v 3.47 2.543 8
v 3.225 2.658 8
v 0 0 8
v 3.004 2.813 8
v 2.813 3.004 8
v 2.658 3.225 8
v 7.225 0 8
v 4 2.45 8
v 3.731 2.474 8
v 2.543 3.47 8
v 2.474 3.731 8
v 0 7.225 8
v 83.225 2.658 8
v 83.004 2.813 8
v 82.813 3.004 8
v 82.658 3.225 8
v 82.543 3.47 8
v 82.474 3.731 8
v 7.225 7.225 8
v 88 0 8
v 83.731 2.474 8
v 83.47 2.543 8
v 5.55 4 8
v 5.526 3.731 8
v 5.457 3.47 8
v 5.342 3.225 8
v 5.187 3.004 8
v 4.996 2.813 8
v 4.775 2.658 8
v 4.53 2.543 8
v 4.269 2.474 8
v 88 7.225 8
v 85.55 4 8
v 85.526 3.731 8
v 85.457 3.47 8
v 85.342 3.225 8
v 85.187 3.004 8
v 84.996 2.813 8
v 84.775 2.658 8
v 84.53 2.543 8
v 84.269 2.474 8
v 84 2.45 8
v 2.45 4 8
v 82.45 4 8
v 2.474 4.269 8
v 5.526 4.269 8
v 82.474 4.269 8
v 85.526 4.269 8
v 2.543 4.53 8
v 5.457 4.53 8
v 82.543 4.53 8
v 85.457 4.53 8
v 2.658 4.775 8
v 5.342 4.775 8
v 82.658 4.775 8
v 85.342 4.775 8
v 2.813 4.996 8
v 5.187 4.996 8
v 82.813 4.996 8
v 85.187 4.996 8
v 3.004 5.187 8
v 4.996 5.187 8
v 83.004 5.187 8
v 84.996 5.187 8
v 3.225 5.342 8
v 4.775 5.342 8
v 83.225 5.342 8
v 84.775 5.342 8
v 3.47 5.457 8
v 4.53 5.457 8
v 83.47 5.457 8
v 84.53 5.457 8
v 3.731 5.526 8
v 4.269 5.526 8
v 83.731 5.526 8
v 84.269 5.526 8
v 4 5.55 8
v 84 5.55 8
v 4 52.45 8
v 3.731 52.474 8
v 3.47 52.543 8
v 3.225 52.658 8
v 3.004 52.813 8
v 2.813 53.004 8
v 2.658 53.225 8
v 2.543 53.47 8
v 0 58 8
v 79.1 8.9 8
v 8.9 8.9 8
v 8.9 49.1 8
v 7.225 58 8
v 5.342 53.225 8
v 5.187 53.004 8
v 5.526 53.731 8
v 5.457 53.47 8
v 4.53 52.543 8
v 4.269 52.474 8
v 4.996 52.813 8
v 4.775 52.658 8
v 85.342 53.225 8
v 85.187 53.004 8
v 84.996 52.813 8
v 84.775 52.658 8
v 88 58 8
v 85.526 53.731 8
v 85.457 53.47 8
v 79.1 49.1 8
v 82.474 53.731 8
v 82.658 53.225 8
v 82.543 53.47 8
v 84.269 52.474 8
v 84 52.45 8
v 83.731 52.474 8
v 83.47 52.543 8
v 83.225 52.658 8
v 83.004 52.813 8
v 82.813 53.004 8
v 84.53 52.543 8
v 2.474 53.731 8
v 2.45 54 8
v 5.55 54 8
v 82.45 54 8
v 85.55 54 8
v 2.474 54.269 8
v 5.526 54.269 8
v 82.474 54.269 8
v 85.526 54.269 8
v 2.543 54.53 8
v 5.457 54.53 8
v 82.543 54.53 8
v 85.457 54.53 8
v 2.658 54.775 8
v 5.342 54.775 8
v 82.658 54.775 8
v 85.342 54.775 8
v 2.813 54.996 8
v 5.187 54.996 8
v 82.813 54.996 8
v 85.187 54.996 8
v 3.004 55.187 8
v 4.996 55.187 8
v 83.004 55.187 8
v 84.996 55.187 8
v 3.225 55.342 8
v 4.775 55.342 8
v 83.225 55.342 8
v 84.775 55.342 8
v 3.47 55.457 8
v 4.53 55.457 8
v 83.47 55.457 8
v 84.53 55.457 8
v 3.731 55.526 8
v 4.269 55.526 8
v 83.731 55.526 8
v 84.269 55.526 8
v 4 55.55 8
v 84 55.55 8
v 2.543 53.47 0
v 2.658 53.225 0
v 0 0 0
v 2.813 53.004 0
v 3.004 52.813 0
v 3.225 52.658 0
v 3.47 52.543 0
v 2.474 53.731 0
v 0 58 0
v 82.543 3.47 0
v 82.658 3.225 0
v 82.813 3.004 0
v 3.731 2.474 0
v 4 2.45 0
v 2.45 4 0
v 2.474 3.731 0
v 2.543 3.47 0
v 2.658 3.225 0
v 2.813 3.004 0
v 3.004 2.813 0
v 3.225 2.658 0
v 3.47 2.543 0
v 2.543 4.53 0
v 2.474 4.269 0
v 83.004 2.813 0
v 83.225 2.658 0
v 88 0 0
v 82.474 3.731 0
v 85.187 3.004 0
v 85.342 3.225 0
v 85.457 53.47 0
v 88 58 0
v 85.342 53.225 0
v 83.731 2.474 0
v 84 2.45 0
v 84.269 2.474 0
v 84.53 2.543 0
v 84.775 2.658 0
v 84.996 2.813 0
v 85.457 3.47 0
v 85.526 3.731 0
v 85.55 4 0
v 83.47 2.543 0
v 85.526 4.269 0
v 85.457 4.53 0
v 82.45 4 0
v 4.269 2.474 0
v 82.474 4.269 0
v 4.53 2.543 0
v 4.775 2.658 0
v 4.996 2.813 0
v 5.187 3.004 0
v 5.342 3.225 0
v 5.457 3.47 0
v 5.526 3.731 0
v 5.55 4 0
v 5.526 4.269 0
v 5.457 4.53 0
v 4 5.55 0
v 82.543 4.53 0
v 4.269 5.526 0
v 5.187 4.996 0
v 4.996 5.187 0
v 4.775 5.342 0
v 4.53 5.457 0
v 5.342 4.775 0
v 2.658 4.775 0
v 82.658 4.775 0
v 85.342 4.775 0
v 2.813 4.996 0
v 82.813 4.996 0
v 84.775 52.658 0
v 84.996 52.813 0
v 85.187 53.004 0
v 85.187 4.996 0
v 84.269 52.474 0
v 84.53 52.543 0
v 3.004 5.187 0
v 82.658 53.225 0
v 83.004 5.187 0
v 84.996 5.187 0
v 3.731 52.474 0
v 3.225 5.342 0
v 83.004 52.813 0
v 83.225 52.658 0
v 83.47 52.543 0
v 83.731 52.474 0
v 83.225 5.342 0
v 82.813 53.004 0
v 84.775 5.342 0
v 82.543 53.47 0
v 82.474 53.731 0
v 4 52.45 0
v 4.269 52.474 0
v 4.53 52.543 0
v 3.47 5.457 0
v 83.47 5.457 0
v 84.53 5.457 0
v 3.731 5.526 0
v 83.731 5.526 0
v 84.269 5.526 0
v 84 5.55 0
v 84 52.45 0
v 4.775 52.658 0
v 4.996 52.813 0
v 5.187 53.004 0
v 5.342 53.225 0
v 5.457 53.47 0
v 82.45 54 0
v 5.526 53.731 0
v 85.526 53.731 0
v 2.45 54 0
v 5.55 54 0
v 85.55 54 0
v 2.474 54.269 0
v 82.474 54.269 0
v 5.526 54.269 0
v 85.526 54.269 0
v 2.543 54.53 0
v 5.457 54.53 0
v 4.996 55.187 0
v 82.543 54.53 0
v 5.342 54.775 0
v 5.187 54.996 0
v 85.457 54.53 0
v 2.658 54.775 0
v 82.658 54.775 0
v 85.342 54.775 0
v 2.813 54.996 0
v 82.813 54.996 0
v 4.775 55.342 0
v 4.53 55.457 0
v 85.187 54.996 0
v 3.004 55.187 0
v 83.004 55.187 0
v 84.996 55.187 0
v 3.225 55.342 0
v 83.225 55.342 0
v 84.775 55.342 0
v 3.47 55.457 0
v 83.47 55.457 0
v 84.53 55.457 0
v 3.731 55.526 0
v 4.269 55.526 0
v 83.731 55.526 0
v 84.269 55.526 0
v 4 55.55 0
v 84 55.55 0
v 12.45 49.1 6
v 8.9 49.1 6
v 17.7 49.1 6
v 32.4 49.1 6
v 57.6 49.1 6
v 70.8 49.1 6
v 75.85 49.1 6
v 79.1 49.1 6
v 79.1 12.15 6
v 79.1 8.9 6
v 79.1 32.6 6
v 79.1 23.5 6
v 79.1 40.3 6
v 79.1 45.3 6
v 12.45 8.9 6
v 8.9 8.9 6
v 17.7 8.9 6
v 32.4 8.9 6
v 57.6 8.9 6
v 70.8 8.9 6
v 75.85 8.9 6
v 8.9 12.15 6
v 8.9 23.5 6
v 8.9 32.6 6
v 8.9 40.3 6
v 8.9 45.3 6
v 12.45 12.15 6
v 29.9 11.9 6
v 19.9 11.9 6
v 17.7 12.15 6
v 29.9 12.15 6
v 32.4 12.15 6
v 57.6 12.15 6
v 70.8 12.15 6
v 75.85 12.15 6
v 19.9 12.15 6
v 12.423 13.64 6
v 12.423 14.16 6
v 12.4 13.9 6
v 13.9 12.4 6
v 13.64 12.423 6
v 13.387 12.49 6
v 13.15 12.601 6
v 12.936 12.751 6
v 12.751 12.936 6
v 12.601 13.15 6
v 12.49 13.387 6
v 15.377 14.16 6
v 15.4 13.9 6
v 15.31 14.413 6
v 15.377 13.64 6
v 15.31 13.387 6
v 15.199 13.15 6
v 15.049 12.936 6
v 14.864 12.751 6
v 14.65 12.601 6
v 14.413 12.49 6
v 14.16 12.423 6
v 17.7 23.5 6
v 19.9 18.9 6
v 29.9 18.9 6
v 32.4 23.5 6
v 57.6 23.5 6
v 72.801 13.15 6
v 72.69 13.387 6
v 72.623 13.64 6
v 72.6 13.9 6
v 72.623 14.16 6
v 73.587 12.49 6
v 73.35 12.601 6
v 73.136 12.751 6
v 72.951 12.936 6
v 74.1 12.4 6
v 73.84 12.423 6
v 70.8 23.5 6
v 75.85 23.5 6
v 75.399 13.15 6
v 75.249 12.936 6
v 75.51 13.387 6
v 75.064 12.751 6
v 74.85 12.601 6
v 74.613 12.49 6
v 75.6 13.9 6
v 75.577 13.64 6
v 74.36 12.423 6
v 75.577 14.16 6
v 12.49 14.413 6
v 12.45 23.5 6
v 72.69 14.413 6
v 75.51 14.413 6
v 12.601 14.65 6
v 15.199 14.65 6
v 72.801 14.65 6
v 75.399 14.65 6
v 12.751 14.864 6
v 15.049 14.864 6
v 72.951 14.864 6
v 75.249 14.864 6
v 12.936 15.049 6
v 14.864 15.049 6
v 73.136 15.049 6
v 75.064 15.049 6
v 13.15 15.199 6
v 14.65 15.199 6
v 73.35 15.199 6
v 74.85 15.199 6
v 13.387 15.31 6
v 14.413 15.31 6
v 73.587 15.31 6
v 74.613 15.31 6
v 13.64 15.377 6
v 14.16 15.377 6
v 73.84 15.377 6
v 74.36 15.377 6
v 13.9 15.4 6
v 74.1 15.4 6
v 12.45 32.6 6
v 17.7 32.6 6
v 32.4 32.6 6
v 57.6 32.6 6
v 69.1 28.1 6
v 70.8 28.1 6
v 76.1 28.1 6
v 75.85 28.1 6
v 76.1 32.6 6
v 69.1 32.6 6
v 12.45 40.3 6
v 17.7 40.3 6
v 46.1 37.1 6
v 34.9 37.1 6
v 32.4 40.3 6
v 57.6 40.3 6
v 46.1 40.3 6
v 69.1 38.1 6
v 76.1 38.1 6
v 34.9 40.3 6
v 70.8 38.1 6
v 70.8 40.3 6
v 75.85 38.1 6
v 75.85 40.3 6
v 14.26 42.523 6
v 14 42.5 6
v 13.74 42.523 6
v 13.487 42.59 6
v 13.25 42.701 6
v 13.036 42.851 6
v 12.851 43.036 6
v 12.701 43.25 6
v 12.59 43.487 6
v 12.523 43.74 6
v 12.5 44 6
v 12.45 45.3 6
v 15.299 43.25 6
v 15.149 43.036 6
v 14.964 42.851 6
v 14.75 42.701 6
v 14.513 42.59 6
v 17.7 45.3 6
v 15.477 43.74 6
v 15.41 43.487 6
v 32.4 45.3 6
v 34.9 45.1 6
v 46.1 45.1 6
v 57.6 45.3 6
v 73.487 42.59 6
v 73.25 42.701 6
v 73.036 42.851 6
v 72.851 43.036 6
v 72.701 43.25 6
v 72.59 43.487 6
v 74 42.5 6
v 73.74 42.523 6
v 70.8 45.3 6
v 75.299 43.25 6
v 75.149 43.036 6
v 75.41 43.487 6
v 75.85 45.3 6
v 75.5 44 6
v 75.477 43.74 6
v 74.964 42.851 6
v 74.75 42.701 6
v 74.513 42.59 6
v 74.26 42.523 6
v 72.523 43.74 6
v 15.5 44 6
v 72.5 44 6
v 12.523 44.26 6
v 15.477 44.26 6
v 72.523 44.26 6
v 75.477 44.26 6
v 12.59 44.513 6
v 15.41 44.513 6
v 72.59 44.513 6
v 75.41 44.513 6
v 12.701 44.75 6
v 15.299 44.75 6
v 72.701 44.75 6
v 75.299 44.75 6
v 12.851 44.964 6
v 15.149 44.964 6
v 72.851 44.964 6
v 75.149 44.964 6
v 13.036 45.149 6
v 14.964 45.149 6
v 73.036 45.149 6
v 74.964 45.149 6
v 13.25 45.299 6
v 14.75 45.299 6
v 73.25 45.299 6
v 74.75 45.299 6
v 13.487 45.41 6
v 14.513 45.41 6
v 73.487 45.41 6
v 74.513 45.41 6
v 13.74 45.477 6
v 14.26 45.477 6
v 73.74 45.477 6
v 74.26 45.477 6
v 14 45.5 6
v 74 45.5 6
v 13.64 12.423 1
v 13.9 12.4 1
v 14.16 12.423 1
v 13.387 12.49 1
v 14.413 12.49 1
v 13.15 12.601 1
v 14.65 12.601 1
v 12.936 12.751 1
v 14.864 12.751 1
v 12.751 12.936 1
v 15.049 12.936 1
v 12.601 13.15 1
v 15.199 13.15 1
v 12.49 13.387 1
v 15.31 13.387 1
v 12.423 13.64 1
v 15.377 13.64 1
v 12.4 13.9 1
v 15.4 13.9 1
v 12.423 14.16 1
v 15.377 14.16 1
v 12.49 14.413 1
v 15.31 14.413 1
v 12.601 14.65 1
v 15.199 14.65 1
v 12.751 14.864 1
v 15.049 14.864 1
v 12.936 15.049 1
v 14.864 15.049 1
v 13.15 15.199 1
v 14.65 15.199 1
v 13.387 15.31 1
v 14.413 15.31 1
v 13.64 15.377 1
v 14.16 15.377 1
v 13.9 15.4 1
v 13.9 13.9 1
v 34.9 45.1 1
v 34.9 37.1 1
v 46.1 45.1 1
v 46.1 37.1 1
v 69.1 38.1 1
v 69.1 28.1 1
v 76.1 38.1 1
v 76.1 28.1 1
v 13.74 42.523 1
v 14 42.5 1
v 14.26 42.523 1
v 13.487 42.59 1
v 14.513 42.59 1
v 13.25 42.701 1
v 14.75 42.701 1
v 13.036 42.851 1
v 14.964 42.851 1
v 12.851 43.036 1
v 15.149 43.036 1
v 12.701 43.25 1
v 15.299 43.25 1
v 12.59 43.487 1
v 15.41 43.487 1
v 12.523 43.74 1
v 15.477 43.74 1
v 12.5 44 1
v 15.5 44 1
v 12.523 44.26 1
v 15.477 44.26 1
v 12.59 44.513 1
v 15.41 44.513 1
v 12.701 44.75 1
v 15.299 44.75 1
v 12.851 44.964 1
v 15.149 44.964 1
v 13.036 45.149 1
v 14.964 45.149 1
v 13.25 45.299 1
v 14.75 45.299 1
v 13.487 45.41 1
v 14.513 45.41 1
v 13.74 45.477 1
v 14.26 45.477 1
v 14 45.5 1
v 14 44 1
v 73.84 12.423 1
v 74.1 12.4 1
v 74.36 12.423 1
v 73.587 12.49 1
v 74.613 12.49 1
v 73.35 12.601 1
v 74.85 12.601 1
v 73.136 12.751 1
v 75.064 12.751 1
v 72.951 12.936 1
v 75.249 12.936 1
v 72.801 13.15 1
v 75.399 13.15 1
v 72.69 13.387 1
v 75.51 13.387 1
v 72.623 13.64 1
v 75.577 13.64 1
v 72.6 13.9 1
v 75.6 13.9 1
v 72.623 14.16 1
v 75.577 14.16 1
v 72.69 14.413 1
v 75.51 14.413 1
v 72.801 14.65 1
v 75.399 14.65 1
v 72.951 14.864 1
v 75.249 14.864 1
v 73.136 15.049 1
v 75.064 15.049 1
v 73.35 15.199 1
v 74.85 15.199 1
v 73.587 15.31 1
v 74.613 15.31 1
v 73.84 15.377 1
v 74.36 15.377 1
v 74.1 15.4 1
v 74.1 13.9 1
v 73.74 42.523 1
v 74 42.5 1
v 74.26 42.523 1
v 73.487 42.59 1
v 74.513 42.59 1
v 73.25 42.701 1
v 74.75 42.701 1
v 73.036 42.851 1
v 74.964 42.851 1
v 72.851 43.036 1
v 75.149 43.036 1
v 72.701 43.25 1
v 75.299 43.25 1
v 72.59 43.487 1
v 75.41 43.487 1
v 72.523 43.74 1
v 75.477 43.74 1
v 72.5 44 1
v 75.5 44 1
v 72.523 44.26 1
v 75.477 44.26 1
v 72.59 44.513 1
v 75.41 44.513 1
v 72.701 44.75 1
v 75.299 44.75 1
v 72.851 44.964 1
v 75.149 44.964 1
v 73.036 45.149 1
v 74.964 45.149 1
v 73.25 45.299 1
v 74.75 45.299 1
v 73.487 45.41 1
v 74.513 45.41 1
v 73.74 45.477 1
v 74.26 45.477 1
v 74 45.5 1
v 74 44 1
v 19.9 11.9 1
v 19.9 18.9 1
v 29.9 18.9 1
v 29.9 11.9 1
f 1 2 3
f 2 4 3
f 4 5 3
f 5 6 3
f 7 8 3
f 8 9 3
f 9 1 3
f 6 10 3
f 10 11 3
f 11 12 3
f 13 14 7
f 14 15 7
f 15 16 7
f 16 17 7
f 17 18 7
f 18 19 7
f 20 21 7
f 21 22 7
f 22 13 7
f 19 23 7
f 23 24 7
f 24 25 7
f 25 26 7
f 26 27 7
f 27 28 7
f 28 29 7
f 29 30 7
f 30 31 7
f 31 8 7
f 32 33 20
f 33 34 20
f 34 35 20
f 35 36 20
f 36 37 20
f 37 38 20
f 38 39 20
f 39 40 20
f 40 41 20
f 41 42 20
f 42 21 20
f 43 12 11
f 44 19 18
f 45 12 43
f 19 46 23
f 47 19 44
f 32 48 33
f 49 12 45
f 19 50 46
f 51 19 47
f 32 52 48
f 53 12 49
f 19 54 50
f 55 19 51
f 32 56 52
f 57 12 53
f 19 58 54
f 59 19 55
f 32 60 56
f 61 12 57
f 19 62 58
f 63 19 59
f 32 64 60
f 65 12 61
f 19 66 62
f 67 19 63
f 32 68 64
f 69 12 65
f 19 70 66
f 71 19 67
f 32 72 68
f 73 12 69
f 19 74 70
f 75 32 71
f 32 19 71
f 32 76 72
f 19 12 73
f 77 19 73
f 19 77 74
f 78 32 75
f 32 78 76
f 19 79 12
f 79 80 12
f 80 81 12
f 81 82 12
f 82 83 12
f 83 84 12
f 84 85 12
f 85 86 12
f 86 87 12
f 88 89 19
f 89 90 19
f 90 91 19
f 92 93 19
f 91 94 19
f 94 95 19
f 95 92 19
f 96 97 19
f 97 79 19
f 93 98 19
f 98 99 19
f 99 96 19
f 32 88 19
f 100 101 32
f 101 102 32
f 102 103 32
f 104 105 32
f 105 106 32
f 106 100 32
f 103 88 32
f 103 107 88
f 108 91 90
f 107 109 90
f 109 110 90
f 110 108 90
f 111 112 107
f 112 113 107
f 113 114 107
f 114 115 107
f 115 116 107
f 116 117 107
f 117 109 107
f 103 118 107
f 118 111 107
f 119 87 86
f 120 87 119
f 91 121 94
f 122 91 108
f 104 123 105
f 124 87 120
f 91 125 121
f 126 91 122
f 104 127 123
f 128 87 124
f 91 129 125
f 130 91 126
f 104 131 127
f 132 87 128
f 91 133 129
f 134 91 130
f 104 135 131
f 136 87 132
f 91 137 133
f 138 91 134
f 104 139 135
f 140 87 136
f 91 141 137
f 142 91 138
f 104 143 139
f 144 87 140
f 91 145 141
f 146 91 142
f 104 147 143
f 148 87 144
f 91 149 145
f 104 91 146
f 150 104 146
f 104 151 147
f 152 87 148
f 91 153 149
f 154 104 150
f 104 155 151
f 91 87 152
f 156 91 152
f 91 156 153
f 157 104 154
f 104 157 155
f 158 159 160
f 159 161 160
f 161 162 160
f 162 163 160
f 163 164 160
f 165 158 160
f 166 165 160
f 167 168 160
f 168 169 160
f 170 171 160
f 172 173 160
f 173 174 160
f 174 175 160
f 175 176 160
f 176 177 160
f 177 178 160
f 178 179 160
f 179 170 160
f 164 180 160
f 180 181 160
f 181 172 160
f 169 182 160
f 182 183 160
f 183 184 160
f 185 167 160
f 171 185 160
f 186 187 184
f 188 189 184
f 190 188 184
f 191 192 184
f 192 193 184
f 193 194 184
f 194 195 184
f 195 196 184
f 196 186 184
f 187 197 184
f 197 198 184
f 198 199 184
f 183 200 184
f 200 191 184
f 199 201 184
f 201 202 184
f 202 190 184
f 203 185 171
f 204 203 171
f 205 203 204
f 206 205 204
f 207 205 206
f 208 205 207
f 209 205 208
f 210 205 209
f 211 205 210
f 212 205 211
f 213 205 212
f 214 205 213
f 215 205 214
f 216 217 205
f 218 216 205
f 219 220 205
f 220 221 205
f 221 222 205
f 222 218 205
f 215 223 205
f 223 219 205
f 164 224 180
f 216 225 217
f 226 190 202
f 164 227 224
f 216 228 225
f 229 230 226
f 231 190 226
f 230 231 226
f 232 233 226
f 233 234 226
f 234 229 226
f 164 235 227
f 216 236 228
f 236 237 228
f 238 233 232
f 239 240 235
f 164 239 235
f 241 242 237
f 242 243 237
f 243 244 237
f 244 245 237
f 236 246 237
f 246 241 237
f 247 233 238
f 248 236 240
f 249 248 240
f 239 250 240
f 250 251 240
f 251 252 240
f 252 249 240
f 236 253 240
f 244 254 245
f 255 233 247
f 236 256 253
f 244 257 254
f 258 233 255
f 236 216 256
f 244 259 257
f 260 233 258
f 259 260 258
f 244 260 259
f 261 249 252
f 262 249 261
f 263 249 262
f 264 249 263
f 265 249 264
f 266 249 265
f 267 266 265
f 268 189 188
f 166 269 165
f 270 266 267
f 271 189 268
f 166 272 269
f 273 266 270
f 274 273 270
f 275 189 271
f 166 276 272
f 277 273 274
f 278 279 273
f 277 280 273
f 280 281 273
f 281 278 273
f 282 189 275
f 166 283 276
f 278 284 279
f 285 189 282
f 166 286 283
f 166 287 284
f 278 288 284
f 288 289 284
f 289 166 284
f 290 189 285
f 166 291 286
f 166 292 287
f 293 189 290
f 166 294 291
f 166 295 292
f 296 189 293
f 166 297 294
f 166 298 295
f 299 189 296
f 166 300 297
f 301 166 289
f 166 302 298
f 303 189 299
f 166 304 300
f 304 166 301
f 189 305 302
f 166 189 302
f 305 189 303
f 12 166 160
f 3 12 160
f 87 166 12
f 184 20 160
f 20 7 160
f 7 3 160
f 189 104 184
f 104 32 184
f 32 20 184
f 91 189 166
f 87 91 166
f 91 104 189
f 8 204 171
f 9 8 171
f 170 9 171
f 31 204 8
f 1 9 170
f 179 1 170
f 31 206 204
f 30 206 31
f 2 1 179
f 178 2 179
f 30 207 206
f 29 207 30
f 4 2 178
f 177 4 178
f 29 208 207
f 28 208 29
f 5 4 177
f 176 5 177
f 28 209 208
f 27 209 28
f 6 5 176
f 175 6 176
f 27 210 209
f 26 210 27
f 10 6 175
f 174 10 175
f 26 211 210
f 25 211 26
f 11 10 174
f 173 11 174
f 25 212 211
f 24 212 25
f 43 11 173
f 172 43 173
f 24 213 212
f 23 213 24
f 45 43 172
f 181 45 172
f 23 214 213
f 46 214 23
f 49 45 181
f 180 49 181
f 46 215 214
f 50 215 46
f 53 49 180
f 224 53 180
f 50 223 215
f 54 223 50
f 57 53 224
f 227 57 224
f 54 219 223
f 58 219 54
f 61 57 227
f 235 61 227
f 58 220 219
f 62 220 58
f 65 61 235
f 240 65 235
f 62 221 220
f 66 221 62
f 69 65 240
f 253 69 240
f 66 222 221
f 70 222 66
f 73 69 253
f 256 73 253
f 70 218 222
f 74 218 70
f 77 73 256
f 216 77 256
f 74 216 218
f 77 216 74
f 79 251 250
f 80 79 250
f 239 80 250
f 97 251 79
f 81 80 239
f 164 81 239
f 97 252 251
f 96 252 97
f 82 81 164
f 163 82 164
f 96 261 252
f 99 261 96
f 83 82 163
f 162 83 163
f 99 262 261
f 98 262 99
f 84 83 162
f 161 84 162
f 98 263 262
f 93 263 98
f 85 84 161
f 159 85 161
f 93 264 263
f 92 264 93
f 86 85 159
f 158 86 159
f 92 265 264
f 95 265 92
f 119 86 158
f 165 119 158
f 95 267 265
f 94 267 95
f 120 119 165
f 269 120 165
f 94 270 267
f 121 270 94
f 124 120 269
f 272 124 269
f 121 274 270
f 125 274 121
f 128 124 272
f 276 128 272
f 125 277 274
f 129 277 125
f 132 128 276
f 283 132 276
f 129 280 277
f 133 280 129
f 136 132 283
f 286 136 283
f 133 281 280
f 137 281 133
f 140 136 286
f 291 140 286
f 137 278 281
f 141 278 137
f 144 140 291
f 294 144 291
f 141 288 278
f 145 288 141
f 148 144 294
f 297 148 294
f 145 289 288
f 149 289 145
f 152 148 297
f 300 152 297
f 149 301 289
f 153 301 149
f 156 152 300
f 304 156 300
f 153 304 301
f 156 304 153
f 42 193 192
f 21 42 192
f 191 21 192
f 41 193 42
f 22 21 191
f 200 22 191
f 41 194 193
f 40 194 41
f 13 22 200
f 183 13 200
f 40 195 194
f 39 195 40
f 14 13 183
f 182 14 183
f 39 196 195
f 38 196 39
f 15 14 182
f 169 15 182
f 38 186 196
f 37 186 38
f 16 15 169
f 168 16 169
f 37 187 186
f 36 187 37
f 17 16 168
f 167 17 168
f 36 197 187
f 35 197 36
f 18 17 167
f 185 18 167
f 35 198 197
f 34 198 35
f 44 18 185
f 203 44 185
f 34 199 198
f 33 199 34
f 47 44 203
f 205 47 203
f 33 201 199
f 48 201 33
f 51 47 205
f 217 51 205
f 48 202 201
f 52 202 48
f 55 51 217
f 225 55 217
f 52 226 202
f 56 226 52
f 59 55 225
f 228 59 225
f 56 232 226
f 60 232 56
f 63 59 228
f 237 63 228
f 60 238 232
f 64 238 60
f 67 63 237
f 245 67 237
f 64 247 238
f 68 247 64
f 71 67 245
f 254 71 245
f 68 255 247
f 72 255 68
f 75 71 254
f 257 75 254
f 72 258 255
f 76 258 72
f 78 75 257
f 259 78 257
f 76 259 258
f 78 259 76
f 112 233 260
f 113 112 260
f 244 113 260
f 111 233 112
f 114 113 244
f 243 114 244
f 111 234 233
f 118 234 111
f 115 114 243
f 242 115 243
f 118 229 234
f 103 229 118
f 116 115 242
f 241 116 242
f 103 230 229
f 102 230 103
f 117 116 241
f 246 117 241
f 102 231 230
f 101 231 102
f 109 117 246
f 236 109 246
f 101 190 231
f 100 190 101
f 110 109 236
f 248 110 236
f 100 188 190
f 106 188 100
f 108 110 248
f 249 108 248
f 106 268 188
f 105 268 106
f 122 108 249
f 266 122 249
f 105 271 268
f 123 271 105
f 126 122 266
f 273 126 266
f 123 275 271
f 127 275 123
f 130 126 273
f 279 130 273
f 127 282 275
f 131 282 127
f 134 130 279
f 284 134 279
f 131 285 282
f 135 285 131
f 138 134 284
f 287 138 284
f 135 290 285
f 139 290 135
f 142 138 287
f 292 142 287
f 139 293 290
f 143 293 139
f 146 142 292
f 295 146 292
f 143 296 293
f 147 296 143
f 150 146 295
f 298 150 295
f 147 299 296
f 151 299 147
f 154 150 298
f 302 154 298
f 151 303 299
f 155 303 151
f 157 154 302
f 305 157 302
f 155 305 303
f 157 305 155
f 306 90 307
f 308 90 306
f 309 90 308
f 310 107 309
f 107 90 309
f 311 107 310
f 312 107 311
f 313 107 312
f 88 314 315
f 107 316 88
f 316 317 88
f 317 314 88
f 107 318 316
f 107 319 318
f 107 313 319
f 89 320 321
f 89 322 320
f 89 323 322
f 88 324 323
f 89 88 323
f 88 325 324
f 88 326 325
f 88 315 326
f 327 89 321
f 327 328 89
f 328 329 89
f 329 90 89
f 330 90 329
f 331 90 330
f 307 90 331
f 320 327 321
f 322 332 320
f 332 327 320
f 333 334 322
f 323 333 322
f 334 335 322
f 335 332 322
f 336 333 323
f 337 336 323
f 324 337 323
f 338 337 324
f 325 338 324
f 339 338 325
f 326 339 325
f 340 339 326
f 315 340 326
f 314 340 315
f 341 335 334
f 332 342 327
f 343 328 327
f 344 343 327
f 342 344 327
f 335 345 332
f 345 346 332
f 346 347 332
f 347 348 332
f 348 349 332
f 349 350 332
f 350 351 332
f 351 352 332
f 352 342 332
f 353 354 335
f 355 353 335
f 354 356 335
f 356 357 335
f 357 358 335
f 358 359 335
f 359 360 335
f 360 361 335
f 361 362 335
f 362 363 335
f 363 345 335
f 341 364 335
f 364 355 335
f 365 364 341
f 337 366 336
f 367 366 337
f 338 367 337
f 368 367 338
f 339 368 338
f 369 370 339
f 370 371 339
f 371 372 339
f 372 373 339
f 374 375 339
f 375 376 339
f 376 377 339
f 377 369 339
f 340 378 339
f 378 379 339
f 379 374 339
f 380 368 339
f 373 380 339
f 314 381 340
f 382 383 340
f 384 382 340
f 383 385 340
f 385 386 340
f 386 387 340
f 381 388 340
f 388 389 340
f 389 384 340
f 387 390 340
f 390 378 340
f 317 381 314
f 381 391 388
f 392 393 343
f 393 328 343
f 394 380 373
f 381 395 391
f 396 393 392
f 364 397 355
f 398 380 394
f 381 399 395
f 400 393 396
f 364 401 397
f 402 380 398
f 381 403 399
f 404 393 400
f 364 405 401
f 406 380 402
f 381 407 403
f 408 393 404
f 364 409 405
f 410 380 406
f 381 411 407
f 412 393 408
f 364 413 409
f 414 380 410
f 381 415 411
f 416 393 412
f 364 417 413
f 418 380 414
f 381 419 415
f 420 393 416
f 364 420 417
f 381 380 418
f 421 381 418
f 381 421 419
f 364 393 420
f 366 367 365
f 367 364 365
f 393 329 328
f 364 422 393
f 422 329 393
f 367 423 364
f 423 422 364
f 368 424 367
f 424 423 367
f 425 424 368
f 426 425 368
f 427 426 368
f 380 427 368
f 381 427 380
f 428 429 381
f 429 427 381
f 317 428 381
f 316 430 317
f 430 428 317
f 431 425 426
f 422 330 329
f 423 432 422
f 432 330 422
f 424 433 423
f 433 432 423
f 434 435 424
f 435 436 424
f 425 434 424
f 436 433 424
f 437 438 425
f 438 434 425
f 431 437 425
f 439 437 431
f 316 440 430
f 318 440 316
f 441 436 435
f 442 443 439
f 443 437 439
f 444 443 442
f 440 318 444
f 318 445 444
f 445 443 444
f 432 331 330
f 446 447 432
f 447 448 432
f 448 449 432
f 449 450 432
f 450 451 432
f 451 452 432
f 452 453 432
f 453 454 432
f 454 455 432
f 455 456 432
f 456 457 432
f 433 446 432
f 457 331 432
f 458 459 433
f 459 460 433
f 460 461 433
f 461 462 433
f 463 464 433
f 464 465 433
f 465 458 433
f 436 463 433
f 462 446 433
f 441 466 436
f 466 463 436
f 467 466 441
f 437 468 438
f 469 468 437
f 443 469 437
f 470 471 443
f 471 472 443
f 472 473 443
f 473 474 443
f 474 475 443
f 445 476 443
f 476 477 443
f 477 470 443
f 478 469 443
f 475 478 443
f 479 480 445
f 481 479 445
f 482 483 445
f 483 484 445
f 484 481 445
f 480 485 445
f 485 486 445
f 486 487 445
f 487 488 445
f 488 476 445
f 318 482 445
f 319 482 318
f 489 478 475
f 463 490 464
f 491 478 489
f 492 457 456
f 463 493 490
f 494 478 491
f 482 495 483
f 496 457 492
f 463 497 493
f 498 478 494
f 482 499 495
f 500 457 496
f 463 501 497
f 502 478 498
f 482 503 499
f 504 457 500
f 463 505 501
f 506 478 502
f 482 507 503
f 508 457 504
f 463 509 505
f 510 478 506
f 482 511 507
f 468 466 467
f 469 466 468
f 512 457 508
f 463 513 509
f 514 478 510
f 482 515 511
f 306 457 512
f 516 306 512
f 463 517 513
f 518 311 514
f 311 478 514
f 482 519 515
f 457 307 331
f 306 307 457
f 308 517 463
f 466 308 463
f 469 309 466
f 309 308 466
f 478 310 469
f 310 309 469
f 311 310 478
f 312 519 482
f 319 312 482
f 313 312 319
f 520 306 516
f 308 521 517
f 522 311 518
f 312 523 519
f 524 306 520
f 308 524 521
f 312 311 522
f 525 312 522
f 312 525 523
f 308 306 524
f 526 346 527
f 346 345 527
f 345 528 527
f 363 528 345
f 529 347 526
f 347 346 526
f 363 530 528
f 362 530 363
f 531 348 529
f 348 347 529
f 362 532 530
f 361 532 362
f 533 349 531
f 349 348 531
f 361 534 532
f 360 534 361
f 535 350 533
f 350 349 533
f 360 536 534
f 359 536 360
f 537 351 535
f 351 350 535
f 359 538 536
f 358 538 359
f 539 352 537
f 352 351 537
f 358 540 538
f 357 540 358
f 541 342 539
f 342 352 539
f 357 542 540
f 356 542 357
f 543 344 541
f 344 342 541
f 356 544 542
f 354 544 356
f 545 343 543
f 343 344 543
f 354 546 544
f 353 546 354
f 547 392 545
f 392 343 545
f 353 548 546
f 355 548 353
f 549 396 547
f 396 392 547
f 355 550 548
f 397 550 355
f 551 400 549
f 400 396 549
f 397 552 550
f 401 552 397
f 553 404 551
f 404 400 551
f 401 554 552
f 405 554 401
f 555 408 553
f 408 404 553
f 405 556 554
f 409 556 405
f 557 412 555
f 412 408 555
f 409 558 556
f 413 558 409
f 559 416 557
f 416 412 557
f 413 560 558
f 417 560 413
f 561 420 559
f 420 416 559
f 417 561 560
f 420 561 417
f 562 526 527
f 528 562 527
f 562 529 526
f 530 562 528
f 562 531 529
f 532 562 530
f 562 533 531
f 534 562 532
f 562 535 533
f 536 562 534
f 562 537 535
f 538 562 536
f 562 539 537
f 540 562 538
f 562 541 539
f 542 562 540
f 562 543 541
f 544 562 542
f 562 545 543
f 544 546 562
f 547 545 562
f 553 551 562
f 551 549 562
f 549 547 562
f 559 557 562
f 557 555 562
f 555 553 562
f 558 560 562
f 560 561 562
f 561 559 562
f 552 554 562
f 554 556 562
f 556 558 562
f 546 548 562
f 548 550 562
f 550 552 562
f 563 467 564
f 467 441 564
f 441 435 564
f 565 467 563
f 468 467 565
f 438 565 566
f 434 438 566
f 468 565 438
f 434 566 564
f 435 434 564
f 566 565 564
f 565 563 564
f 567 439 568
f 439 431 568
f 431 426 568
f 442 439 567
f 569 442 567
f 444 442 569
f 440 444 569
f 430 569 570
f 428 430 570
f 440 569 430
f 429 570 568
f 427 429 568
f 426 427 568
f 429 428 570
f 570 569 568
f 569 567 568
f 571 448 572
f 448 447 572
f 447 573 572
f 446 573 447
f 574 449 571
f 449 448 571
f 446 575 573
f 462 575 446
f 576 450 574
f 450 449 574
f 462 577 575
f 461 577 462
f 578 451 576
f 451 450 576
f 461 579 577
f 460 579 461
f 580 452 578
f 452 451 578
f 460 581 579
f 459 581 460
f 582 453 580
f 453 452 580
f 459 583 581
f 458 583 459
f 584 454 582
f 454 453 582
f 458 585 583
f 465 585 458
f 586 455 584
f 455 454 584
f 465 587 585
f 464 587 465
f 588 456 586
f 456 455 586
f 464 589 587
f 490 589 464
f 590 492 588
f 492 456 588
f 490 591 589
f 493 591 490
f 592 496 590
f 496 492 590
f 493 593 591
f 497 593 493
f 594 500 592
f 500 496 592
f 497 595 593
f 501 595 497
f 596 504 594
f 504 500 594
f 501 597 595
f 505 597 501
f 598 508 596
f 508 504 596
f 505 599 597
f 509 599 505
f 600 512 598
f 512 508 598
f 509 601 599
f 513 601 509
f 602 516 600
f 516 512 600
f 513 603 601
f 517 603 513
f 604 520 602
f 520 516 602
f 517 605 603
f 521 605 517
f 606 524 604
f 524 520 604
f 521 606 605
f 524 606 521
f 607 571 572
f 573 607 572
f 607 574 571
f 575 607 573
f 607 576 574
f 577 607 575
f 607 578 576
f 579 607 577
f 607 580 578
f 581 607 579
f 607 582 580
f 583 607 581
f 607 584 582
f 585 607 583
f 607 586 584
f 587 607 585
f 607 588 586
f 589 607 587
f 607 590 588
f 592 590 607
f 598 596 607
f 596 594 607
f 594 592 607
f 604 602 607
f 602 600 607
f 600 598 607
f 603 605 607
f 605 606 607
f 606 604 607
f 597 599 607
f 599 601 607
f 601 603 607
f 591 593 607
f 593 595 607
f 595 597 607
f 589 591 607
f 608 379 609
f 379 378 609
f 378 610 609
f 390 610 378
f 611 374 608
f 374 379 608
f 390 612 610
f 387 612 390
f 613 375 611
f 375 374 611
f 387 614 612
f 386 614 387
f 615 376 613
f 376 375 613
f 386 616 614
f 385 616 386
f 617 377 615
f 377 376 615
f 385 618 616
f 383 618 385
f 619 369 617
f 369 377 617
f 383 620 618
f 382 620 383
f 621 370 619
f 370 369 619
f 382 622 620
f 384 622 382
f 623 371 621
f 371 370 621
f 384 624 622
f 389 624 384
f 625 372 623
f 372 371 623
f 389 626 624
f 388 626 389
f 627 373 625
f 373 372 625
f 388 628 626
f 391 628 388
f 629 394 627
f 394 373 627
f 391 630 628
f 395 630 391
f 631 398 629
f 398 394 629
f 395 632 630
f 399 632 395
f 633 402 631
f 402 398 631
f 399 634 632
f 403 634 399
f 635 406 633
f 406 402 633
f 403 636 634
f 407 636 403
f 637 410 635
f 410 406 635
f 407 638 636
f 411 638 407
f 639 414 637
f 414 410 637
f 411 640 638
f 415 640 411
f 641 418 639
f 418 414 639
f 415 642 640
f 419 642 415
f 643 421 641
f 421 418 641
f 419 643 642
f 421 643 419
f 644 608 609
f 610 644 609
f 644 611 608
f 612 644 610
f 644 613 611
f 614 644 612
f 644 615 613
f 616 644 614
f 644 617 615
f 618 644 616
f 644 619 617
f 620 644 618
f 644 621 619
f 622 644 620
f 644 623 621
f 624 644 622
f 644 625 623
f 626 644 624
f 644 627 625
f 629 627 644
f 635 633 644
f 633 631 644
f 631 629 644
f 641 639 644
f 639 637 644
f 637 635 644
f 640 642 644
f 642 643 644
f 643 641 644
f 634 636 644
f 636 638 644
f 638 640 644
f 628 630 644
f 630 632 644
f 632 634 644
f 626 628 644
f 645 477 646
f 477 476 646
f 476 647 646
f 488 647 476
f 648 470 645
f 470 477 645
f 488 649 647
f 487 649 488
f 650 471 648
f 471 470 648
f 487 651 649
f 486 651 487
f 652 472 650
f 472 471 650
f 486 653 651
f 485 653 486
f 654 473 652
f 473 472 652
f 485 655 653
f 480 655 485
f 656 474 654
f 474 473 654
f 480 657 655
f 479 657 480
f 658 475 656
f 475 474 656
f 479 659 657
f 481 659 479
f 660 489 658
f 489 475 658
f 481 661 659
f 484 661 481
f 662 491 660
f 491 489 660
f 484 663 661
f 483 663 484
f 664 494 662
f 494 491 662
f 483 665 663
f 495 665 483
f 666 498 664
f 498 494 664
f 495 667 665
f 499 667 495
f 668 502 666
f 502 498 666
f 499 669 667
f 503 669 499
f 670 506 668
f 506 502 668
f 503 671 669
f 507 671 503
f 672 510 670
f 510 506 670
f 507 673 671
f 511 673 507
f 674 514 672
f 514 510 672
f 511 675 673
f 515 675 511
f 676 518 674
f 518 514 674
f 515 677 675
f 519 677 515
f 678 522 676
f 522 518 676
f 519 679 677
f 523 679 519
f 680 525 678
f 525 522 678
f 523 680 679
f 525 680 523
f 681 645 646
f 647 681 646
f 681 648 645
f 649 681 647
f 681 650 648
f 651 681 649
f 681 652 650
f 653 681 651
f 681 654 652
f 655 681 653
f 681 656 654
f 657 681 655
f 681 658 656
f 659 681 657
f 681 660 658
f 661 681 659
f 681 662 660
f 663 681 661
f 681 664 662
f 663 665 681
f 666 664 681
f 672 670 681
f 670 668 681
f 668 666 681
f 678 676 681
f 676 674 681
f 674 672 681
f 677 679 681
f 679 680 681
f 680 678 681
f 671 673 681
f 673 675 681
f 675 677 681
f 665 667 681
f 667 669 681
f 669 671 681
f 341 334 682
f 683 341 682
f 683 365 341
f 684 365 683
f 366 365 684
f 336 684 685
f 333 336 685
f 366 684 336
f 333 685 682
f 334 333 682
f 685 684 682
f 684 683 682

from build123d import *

# Parameters (mm, degrees)
SKETCH_2_W          = 88
SKETCH_2_H          = 58
SKETCH_2_R          = 1.55
EXTRUDE_4_DEPTH     = 8
SKETCH_6_W          = 70.2
SKETCH_6_H          = 40.2
CUT_EXTRUDE_4_DEPTH = 2
SKETCH_7_R          = 1.5
SKETCH_7_W          = 10
SKETCH_7_H          = 7
SKETCH_7_W_2        = 7
SKETCH_7_H_2        = 10
SKETCH_7_W_3        = 11.2
SKETCH_7_H_3        = 8
CUT_EXTRUDE_7_DEPTH = 5


with BuildPart() as part:
    # 草图2 → 凸台-拉伸4 (new body)
    with BuildSketch(Plane.XY):
        with Locations((44, 29)):
            Rectangle(SKETCH_2_W, SKETCH_2_H)
        with Locations((4, 4)):
            Circle(SKETCH_2_R, mode=Mode.SUBTRACT)
        with Locations(Location((4, 54, 0), (0, 0, 180))):
            Circle(SKETCH_2_R, mode=Mode.SUBTRACT)
        with Locations(Location((84, 4, 0), (0, 0, 180))):
            Circle(SKETCH_2_R, mode=Mode.SUBTRACT)
        with Locations((84, 54)):
            Circle(SKETCH_2_R, mode=Mode.SUBTRACT)
    extrude(amount=EXTRUDE_4_DEPTH)

    # 草图6 → 切除-拉伸4 (cut)
    with BuildSketch(Plane.XY.offset(8)):
        with Locations((44, 29)):
            Rectangle(SKETCH_6_W, SKETCH_6_H)
    extrude(amount=-CUT_EXTRUDE_4_DEPTH, mode=Mode.SUBTRACT)

    # 草图7 → 切除-拉伸7 (cut)
    with BuildSketch(Plane.XY.offset(6)):
        with Locations((13.9, 13.9)):
            Circle(SKETCH_7_R)
        with Locations(Location((14, 44, 0), (0, 0, 180))):
            Circle(SKETCH_7_R)
        with Locations(Location((74.1, 13.9, 0), (0, 0, 180))):
            Circle(SKETCH_7_R)
        with Locations((74, 44)):
            Circle(SKETCH_7_R)
        with Locations((24.9, 15.4)):
            Rectangle(SKETCH_7_W, SKETCH_7_H)
        with Locations((72.6, 33.1)):
            Rectangle(SKETCH_7_W_2, SKETCH_7_H_2)
        with Locations((40.5, 41.1)):
            Rectangle(SKETCH_7_W_3, SKETCH_7_H_3)
    extrude(amount=-CUT_EXTRUDE_7_DEPTH, mode=Mode.SUBTRACT)


solid = part.part
